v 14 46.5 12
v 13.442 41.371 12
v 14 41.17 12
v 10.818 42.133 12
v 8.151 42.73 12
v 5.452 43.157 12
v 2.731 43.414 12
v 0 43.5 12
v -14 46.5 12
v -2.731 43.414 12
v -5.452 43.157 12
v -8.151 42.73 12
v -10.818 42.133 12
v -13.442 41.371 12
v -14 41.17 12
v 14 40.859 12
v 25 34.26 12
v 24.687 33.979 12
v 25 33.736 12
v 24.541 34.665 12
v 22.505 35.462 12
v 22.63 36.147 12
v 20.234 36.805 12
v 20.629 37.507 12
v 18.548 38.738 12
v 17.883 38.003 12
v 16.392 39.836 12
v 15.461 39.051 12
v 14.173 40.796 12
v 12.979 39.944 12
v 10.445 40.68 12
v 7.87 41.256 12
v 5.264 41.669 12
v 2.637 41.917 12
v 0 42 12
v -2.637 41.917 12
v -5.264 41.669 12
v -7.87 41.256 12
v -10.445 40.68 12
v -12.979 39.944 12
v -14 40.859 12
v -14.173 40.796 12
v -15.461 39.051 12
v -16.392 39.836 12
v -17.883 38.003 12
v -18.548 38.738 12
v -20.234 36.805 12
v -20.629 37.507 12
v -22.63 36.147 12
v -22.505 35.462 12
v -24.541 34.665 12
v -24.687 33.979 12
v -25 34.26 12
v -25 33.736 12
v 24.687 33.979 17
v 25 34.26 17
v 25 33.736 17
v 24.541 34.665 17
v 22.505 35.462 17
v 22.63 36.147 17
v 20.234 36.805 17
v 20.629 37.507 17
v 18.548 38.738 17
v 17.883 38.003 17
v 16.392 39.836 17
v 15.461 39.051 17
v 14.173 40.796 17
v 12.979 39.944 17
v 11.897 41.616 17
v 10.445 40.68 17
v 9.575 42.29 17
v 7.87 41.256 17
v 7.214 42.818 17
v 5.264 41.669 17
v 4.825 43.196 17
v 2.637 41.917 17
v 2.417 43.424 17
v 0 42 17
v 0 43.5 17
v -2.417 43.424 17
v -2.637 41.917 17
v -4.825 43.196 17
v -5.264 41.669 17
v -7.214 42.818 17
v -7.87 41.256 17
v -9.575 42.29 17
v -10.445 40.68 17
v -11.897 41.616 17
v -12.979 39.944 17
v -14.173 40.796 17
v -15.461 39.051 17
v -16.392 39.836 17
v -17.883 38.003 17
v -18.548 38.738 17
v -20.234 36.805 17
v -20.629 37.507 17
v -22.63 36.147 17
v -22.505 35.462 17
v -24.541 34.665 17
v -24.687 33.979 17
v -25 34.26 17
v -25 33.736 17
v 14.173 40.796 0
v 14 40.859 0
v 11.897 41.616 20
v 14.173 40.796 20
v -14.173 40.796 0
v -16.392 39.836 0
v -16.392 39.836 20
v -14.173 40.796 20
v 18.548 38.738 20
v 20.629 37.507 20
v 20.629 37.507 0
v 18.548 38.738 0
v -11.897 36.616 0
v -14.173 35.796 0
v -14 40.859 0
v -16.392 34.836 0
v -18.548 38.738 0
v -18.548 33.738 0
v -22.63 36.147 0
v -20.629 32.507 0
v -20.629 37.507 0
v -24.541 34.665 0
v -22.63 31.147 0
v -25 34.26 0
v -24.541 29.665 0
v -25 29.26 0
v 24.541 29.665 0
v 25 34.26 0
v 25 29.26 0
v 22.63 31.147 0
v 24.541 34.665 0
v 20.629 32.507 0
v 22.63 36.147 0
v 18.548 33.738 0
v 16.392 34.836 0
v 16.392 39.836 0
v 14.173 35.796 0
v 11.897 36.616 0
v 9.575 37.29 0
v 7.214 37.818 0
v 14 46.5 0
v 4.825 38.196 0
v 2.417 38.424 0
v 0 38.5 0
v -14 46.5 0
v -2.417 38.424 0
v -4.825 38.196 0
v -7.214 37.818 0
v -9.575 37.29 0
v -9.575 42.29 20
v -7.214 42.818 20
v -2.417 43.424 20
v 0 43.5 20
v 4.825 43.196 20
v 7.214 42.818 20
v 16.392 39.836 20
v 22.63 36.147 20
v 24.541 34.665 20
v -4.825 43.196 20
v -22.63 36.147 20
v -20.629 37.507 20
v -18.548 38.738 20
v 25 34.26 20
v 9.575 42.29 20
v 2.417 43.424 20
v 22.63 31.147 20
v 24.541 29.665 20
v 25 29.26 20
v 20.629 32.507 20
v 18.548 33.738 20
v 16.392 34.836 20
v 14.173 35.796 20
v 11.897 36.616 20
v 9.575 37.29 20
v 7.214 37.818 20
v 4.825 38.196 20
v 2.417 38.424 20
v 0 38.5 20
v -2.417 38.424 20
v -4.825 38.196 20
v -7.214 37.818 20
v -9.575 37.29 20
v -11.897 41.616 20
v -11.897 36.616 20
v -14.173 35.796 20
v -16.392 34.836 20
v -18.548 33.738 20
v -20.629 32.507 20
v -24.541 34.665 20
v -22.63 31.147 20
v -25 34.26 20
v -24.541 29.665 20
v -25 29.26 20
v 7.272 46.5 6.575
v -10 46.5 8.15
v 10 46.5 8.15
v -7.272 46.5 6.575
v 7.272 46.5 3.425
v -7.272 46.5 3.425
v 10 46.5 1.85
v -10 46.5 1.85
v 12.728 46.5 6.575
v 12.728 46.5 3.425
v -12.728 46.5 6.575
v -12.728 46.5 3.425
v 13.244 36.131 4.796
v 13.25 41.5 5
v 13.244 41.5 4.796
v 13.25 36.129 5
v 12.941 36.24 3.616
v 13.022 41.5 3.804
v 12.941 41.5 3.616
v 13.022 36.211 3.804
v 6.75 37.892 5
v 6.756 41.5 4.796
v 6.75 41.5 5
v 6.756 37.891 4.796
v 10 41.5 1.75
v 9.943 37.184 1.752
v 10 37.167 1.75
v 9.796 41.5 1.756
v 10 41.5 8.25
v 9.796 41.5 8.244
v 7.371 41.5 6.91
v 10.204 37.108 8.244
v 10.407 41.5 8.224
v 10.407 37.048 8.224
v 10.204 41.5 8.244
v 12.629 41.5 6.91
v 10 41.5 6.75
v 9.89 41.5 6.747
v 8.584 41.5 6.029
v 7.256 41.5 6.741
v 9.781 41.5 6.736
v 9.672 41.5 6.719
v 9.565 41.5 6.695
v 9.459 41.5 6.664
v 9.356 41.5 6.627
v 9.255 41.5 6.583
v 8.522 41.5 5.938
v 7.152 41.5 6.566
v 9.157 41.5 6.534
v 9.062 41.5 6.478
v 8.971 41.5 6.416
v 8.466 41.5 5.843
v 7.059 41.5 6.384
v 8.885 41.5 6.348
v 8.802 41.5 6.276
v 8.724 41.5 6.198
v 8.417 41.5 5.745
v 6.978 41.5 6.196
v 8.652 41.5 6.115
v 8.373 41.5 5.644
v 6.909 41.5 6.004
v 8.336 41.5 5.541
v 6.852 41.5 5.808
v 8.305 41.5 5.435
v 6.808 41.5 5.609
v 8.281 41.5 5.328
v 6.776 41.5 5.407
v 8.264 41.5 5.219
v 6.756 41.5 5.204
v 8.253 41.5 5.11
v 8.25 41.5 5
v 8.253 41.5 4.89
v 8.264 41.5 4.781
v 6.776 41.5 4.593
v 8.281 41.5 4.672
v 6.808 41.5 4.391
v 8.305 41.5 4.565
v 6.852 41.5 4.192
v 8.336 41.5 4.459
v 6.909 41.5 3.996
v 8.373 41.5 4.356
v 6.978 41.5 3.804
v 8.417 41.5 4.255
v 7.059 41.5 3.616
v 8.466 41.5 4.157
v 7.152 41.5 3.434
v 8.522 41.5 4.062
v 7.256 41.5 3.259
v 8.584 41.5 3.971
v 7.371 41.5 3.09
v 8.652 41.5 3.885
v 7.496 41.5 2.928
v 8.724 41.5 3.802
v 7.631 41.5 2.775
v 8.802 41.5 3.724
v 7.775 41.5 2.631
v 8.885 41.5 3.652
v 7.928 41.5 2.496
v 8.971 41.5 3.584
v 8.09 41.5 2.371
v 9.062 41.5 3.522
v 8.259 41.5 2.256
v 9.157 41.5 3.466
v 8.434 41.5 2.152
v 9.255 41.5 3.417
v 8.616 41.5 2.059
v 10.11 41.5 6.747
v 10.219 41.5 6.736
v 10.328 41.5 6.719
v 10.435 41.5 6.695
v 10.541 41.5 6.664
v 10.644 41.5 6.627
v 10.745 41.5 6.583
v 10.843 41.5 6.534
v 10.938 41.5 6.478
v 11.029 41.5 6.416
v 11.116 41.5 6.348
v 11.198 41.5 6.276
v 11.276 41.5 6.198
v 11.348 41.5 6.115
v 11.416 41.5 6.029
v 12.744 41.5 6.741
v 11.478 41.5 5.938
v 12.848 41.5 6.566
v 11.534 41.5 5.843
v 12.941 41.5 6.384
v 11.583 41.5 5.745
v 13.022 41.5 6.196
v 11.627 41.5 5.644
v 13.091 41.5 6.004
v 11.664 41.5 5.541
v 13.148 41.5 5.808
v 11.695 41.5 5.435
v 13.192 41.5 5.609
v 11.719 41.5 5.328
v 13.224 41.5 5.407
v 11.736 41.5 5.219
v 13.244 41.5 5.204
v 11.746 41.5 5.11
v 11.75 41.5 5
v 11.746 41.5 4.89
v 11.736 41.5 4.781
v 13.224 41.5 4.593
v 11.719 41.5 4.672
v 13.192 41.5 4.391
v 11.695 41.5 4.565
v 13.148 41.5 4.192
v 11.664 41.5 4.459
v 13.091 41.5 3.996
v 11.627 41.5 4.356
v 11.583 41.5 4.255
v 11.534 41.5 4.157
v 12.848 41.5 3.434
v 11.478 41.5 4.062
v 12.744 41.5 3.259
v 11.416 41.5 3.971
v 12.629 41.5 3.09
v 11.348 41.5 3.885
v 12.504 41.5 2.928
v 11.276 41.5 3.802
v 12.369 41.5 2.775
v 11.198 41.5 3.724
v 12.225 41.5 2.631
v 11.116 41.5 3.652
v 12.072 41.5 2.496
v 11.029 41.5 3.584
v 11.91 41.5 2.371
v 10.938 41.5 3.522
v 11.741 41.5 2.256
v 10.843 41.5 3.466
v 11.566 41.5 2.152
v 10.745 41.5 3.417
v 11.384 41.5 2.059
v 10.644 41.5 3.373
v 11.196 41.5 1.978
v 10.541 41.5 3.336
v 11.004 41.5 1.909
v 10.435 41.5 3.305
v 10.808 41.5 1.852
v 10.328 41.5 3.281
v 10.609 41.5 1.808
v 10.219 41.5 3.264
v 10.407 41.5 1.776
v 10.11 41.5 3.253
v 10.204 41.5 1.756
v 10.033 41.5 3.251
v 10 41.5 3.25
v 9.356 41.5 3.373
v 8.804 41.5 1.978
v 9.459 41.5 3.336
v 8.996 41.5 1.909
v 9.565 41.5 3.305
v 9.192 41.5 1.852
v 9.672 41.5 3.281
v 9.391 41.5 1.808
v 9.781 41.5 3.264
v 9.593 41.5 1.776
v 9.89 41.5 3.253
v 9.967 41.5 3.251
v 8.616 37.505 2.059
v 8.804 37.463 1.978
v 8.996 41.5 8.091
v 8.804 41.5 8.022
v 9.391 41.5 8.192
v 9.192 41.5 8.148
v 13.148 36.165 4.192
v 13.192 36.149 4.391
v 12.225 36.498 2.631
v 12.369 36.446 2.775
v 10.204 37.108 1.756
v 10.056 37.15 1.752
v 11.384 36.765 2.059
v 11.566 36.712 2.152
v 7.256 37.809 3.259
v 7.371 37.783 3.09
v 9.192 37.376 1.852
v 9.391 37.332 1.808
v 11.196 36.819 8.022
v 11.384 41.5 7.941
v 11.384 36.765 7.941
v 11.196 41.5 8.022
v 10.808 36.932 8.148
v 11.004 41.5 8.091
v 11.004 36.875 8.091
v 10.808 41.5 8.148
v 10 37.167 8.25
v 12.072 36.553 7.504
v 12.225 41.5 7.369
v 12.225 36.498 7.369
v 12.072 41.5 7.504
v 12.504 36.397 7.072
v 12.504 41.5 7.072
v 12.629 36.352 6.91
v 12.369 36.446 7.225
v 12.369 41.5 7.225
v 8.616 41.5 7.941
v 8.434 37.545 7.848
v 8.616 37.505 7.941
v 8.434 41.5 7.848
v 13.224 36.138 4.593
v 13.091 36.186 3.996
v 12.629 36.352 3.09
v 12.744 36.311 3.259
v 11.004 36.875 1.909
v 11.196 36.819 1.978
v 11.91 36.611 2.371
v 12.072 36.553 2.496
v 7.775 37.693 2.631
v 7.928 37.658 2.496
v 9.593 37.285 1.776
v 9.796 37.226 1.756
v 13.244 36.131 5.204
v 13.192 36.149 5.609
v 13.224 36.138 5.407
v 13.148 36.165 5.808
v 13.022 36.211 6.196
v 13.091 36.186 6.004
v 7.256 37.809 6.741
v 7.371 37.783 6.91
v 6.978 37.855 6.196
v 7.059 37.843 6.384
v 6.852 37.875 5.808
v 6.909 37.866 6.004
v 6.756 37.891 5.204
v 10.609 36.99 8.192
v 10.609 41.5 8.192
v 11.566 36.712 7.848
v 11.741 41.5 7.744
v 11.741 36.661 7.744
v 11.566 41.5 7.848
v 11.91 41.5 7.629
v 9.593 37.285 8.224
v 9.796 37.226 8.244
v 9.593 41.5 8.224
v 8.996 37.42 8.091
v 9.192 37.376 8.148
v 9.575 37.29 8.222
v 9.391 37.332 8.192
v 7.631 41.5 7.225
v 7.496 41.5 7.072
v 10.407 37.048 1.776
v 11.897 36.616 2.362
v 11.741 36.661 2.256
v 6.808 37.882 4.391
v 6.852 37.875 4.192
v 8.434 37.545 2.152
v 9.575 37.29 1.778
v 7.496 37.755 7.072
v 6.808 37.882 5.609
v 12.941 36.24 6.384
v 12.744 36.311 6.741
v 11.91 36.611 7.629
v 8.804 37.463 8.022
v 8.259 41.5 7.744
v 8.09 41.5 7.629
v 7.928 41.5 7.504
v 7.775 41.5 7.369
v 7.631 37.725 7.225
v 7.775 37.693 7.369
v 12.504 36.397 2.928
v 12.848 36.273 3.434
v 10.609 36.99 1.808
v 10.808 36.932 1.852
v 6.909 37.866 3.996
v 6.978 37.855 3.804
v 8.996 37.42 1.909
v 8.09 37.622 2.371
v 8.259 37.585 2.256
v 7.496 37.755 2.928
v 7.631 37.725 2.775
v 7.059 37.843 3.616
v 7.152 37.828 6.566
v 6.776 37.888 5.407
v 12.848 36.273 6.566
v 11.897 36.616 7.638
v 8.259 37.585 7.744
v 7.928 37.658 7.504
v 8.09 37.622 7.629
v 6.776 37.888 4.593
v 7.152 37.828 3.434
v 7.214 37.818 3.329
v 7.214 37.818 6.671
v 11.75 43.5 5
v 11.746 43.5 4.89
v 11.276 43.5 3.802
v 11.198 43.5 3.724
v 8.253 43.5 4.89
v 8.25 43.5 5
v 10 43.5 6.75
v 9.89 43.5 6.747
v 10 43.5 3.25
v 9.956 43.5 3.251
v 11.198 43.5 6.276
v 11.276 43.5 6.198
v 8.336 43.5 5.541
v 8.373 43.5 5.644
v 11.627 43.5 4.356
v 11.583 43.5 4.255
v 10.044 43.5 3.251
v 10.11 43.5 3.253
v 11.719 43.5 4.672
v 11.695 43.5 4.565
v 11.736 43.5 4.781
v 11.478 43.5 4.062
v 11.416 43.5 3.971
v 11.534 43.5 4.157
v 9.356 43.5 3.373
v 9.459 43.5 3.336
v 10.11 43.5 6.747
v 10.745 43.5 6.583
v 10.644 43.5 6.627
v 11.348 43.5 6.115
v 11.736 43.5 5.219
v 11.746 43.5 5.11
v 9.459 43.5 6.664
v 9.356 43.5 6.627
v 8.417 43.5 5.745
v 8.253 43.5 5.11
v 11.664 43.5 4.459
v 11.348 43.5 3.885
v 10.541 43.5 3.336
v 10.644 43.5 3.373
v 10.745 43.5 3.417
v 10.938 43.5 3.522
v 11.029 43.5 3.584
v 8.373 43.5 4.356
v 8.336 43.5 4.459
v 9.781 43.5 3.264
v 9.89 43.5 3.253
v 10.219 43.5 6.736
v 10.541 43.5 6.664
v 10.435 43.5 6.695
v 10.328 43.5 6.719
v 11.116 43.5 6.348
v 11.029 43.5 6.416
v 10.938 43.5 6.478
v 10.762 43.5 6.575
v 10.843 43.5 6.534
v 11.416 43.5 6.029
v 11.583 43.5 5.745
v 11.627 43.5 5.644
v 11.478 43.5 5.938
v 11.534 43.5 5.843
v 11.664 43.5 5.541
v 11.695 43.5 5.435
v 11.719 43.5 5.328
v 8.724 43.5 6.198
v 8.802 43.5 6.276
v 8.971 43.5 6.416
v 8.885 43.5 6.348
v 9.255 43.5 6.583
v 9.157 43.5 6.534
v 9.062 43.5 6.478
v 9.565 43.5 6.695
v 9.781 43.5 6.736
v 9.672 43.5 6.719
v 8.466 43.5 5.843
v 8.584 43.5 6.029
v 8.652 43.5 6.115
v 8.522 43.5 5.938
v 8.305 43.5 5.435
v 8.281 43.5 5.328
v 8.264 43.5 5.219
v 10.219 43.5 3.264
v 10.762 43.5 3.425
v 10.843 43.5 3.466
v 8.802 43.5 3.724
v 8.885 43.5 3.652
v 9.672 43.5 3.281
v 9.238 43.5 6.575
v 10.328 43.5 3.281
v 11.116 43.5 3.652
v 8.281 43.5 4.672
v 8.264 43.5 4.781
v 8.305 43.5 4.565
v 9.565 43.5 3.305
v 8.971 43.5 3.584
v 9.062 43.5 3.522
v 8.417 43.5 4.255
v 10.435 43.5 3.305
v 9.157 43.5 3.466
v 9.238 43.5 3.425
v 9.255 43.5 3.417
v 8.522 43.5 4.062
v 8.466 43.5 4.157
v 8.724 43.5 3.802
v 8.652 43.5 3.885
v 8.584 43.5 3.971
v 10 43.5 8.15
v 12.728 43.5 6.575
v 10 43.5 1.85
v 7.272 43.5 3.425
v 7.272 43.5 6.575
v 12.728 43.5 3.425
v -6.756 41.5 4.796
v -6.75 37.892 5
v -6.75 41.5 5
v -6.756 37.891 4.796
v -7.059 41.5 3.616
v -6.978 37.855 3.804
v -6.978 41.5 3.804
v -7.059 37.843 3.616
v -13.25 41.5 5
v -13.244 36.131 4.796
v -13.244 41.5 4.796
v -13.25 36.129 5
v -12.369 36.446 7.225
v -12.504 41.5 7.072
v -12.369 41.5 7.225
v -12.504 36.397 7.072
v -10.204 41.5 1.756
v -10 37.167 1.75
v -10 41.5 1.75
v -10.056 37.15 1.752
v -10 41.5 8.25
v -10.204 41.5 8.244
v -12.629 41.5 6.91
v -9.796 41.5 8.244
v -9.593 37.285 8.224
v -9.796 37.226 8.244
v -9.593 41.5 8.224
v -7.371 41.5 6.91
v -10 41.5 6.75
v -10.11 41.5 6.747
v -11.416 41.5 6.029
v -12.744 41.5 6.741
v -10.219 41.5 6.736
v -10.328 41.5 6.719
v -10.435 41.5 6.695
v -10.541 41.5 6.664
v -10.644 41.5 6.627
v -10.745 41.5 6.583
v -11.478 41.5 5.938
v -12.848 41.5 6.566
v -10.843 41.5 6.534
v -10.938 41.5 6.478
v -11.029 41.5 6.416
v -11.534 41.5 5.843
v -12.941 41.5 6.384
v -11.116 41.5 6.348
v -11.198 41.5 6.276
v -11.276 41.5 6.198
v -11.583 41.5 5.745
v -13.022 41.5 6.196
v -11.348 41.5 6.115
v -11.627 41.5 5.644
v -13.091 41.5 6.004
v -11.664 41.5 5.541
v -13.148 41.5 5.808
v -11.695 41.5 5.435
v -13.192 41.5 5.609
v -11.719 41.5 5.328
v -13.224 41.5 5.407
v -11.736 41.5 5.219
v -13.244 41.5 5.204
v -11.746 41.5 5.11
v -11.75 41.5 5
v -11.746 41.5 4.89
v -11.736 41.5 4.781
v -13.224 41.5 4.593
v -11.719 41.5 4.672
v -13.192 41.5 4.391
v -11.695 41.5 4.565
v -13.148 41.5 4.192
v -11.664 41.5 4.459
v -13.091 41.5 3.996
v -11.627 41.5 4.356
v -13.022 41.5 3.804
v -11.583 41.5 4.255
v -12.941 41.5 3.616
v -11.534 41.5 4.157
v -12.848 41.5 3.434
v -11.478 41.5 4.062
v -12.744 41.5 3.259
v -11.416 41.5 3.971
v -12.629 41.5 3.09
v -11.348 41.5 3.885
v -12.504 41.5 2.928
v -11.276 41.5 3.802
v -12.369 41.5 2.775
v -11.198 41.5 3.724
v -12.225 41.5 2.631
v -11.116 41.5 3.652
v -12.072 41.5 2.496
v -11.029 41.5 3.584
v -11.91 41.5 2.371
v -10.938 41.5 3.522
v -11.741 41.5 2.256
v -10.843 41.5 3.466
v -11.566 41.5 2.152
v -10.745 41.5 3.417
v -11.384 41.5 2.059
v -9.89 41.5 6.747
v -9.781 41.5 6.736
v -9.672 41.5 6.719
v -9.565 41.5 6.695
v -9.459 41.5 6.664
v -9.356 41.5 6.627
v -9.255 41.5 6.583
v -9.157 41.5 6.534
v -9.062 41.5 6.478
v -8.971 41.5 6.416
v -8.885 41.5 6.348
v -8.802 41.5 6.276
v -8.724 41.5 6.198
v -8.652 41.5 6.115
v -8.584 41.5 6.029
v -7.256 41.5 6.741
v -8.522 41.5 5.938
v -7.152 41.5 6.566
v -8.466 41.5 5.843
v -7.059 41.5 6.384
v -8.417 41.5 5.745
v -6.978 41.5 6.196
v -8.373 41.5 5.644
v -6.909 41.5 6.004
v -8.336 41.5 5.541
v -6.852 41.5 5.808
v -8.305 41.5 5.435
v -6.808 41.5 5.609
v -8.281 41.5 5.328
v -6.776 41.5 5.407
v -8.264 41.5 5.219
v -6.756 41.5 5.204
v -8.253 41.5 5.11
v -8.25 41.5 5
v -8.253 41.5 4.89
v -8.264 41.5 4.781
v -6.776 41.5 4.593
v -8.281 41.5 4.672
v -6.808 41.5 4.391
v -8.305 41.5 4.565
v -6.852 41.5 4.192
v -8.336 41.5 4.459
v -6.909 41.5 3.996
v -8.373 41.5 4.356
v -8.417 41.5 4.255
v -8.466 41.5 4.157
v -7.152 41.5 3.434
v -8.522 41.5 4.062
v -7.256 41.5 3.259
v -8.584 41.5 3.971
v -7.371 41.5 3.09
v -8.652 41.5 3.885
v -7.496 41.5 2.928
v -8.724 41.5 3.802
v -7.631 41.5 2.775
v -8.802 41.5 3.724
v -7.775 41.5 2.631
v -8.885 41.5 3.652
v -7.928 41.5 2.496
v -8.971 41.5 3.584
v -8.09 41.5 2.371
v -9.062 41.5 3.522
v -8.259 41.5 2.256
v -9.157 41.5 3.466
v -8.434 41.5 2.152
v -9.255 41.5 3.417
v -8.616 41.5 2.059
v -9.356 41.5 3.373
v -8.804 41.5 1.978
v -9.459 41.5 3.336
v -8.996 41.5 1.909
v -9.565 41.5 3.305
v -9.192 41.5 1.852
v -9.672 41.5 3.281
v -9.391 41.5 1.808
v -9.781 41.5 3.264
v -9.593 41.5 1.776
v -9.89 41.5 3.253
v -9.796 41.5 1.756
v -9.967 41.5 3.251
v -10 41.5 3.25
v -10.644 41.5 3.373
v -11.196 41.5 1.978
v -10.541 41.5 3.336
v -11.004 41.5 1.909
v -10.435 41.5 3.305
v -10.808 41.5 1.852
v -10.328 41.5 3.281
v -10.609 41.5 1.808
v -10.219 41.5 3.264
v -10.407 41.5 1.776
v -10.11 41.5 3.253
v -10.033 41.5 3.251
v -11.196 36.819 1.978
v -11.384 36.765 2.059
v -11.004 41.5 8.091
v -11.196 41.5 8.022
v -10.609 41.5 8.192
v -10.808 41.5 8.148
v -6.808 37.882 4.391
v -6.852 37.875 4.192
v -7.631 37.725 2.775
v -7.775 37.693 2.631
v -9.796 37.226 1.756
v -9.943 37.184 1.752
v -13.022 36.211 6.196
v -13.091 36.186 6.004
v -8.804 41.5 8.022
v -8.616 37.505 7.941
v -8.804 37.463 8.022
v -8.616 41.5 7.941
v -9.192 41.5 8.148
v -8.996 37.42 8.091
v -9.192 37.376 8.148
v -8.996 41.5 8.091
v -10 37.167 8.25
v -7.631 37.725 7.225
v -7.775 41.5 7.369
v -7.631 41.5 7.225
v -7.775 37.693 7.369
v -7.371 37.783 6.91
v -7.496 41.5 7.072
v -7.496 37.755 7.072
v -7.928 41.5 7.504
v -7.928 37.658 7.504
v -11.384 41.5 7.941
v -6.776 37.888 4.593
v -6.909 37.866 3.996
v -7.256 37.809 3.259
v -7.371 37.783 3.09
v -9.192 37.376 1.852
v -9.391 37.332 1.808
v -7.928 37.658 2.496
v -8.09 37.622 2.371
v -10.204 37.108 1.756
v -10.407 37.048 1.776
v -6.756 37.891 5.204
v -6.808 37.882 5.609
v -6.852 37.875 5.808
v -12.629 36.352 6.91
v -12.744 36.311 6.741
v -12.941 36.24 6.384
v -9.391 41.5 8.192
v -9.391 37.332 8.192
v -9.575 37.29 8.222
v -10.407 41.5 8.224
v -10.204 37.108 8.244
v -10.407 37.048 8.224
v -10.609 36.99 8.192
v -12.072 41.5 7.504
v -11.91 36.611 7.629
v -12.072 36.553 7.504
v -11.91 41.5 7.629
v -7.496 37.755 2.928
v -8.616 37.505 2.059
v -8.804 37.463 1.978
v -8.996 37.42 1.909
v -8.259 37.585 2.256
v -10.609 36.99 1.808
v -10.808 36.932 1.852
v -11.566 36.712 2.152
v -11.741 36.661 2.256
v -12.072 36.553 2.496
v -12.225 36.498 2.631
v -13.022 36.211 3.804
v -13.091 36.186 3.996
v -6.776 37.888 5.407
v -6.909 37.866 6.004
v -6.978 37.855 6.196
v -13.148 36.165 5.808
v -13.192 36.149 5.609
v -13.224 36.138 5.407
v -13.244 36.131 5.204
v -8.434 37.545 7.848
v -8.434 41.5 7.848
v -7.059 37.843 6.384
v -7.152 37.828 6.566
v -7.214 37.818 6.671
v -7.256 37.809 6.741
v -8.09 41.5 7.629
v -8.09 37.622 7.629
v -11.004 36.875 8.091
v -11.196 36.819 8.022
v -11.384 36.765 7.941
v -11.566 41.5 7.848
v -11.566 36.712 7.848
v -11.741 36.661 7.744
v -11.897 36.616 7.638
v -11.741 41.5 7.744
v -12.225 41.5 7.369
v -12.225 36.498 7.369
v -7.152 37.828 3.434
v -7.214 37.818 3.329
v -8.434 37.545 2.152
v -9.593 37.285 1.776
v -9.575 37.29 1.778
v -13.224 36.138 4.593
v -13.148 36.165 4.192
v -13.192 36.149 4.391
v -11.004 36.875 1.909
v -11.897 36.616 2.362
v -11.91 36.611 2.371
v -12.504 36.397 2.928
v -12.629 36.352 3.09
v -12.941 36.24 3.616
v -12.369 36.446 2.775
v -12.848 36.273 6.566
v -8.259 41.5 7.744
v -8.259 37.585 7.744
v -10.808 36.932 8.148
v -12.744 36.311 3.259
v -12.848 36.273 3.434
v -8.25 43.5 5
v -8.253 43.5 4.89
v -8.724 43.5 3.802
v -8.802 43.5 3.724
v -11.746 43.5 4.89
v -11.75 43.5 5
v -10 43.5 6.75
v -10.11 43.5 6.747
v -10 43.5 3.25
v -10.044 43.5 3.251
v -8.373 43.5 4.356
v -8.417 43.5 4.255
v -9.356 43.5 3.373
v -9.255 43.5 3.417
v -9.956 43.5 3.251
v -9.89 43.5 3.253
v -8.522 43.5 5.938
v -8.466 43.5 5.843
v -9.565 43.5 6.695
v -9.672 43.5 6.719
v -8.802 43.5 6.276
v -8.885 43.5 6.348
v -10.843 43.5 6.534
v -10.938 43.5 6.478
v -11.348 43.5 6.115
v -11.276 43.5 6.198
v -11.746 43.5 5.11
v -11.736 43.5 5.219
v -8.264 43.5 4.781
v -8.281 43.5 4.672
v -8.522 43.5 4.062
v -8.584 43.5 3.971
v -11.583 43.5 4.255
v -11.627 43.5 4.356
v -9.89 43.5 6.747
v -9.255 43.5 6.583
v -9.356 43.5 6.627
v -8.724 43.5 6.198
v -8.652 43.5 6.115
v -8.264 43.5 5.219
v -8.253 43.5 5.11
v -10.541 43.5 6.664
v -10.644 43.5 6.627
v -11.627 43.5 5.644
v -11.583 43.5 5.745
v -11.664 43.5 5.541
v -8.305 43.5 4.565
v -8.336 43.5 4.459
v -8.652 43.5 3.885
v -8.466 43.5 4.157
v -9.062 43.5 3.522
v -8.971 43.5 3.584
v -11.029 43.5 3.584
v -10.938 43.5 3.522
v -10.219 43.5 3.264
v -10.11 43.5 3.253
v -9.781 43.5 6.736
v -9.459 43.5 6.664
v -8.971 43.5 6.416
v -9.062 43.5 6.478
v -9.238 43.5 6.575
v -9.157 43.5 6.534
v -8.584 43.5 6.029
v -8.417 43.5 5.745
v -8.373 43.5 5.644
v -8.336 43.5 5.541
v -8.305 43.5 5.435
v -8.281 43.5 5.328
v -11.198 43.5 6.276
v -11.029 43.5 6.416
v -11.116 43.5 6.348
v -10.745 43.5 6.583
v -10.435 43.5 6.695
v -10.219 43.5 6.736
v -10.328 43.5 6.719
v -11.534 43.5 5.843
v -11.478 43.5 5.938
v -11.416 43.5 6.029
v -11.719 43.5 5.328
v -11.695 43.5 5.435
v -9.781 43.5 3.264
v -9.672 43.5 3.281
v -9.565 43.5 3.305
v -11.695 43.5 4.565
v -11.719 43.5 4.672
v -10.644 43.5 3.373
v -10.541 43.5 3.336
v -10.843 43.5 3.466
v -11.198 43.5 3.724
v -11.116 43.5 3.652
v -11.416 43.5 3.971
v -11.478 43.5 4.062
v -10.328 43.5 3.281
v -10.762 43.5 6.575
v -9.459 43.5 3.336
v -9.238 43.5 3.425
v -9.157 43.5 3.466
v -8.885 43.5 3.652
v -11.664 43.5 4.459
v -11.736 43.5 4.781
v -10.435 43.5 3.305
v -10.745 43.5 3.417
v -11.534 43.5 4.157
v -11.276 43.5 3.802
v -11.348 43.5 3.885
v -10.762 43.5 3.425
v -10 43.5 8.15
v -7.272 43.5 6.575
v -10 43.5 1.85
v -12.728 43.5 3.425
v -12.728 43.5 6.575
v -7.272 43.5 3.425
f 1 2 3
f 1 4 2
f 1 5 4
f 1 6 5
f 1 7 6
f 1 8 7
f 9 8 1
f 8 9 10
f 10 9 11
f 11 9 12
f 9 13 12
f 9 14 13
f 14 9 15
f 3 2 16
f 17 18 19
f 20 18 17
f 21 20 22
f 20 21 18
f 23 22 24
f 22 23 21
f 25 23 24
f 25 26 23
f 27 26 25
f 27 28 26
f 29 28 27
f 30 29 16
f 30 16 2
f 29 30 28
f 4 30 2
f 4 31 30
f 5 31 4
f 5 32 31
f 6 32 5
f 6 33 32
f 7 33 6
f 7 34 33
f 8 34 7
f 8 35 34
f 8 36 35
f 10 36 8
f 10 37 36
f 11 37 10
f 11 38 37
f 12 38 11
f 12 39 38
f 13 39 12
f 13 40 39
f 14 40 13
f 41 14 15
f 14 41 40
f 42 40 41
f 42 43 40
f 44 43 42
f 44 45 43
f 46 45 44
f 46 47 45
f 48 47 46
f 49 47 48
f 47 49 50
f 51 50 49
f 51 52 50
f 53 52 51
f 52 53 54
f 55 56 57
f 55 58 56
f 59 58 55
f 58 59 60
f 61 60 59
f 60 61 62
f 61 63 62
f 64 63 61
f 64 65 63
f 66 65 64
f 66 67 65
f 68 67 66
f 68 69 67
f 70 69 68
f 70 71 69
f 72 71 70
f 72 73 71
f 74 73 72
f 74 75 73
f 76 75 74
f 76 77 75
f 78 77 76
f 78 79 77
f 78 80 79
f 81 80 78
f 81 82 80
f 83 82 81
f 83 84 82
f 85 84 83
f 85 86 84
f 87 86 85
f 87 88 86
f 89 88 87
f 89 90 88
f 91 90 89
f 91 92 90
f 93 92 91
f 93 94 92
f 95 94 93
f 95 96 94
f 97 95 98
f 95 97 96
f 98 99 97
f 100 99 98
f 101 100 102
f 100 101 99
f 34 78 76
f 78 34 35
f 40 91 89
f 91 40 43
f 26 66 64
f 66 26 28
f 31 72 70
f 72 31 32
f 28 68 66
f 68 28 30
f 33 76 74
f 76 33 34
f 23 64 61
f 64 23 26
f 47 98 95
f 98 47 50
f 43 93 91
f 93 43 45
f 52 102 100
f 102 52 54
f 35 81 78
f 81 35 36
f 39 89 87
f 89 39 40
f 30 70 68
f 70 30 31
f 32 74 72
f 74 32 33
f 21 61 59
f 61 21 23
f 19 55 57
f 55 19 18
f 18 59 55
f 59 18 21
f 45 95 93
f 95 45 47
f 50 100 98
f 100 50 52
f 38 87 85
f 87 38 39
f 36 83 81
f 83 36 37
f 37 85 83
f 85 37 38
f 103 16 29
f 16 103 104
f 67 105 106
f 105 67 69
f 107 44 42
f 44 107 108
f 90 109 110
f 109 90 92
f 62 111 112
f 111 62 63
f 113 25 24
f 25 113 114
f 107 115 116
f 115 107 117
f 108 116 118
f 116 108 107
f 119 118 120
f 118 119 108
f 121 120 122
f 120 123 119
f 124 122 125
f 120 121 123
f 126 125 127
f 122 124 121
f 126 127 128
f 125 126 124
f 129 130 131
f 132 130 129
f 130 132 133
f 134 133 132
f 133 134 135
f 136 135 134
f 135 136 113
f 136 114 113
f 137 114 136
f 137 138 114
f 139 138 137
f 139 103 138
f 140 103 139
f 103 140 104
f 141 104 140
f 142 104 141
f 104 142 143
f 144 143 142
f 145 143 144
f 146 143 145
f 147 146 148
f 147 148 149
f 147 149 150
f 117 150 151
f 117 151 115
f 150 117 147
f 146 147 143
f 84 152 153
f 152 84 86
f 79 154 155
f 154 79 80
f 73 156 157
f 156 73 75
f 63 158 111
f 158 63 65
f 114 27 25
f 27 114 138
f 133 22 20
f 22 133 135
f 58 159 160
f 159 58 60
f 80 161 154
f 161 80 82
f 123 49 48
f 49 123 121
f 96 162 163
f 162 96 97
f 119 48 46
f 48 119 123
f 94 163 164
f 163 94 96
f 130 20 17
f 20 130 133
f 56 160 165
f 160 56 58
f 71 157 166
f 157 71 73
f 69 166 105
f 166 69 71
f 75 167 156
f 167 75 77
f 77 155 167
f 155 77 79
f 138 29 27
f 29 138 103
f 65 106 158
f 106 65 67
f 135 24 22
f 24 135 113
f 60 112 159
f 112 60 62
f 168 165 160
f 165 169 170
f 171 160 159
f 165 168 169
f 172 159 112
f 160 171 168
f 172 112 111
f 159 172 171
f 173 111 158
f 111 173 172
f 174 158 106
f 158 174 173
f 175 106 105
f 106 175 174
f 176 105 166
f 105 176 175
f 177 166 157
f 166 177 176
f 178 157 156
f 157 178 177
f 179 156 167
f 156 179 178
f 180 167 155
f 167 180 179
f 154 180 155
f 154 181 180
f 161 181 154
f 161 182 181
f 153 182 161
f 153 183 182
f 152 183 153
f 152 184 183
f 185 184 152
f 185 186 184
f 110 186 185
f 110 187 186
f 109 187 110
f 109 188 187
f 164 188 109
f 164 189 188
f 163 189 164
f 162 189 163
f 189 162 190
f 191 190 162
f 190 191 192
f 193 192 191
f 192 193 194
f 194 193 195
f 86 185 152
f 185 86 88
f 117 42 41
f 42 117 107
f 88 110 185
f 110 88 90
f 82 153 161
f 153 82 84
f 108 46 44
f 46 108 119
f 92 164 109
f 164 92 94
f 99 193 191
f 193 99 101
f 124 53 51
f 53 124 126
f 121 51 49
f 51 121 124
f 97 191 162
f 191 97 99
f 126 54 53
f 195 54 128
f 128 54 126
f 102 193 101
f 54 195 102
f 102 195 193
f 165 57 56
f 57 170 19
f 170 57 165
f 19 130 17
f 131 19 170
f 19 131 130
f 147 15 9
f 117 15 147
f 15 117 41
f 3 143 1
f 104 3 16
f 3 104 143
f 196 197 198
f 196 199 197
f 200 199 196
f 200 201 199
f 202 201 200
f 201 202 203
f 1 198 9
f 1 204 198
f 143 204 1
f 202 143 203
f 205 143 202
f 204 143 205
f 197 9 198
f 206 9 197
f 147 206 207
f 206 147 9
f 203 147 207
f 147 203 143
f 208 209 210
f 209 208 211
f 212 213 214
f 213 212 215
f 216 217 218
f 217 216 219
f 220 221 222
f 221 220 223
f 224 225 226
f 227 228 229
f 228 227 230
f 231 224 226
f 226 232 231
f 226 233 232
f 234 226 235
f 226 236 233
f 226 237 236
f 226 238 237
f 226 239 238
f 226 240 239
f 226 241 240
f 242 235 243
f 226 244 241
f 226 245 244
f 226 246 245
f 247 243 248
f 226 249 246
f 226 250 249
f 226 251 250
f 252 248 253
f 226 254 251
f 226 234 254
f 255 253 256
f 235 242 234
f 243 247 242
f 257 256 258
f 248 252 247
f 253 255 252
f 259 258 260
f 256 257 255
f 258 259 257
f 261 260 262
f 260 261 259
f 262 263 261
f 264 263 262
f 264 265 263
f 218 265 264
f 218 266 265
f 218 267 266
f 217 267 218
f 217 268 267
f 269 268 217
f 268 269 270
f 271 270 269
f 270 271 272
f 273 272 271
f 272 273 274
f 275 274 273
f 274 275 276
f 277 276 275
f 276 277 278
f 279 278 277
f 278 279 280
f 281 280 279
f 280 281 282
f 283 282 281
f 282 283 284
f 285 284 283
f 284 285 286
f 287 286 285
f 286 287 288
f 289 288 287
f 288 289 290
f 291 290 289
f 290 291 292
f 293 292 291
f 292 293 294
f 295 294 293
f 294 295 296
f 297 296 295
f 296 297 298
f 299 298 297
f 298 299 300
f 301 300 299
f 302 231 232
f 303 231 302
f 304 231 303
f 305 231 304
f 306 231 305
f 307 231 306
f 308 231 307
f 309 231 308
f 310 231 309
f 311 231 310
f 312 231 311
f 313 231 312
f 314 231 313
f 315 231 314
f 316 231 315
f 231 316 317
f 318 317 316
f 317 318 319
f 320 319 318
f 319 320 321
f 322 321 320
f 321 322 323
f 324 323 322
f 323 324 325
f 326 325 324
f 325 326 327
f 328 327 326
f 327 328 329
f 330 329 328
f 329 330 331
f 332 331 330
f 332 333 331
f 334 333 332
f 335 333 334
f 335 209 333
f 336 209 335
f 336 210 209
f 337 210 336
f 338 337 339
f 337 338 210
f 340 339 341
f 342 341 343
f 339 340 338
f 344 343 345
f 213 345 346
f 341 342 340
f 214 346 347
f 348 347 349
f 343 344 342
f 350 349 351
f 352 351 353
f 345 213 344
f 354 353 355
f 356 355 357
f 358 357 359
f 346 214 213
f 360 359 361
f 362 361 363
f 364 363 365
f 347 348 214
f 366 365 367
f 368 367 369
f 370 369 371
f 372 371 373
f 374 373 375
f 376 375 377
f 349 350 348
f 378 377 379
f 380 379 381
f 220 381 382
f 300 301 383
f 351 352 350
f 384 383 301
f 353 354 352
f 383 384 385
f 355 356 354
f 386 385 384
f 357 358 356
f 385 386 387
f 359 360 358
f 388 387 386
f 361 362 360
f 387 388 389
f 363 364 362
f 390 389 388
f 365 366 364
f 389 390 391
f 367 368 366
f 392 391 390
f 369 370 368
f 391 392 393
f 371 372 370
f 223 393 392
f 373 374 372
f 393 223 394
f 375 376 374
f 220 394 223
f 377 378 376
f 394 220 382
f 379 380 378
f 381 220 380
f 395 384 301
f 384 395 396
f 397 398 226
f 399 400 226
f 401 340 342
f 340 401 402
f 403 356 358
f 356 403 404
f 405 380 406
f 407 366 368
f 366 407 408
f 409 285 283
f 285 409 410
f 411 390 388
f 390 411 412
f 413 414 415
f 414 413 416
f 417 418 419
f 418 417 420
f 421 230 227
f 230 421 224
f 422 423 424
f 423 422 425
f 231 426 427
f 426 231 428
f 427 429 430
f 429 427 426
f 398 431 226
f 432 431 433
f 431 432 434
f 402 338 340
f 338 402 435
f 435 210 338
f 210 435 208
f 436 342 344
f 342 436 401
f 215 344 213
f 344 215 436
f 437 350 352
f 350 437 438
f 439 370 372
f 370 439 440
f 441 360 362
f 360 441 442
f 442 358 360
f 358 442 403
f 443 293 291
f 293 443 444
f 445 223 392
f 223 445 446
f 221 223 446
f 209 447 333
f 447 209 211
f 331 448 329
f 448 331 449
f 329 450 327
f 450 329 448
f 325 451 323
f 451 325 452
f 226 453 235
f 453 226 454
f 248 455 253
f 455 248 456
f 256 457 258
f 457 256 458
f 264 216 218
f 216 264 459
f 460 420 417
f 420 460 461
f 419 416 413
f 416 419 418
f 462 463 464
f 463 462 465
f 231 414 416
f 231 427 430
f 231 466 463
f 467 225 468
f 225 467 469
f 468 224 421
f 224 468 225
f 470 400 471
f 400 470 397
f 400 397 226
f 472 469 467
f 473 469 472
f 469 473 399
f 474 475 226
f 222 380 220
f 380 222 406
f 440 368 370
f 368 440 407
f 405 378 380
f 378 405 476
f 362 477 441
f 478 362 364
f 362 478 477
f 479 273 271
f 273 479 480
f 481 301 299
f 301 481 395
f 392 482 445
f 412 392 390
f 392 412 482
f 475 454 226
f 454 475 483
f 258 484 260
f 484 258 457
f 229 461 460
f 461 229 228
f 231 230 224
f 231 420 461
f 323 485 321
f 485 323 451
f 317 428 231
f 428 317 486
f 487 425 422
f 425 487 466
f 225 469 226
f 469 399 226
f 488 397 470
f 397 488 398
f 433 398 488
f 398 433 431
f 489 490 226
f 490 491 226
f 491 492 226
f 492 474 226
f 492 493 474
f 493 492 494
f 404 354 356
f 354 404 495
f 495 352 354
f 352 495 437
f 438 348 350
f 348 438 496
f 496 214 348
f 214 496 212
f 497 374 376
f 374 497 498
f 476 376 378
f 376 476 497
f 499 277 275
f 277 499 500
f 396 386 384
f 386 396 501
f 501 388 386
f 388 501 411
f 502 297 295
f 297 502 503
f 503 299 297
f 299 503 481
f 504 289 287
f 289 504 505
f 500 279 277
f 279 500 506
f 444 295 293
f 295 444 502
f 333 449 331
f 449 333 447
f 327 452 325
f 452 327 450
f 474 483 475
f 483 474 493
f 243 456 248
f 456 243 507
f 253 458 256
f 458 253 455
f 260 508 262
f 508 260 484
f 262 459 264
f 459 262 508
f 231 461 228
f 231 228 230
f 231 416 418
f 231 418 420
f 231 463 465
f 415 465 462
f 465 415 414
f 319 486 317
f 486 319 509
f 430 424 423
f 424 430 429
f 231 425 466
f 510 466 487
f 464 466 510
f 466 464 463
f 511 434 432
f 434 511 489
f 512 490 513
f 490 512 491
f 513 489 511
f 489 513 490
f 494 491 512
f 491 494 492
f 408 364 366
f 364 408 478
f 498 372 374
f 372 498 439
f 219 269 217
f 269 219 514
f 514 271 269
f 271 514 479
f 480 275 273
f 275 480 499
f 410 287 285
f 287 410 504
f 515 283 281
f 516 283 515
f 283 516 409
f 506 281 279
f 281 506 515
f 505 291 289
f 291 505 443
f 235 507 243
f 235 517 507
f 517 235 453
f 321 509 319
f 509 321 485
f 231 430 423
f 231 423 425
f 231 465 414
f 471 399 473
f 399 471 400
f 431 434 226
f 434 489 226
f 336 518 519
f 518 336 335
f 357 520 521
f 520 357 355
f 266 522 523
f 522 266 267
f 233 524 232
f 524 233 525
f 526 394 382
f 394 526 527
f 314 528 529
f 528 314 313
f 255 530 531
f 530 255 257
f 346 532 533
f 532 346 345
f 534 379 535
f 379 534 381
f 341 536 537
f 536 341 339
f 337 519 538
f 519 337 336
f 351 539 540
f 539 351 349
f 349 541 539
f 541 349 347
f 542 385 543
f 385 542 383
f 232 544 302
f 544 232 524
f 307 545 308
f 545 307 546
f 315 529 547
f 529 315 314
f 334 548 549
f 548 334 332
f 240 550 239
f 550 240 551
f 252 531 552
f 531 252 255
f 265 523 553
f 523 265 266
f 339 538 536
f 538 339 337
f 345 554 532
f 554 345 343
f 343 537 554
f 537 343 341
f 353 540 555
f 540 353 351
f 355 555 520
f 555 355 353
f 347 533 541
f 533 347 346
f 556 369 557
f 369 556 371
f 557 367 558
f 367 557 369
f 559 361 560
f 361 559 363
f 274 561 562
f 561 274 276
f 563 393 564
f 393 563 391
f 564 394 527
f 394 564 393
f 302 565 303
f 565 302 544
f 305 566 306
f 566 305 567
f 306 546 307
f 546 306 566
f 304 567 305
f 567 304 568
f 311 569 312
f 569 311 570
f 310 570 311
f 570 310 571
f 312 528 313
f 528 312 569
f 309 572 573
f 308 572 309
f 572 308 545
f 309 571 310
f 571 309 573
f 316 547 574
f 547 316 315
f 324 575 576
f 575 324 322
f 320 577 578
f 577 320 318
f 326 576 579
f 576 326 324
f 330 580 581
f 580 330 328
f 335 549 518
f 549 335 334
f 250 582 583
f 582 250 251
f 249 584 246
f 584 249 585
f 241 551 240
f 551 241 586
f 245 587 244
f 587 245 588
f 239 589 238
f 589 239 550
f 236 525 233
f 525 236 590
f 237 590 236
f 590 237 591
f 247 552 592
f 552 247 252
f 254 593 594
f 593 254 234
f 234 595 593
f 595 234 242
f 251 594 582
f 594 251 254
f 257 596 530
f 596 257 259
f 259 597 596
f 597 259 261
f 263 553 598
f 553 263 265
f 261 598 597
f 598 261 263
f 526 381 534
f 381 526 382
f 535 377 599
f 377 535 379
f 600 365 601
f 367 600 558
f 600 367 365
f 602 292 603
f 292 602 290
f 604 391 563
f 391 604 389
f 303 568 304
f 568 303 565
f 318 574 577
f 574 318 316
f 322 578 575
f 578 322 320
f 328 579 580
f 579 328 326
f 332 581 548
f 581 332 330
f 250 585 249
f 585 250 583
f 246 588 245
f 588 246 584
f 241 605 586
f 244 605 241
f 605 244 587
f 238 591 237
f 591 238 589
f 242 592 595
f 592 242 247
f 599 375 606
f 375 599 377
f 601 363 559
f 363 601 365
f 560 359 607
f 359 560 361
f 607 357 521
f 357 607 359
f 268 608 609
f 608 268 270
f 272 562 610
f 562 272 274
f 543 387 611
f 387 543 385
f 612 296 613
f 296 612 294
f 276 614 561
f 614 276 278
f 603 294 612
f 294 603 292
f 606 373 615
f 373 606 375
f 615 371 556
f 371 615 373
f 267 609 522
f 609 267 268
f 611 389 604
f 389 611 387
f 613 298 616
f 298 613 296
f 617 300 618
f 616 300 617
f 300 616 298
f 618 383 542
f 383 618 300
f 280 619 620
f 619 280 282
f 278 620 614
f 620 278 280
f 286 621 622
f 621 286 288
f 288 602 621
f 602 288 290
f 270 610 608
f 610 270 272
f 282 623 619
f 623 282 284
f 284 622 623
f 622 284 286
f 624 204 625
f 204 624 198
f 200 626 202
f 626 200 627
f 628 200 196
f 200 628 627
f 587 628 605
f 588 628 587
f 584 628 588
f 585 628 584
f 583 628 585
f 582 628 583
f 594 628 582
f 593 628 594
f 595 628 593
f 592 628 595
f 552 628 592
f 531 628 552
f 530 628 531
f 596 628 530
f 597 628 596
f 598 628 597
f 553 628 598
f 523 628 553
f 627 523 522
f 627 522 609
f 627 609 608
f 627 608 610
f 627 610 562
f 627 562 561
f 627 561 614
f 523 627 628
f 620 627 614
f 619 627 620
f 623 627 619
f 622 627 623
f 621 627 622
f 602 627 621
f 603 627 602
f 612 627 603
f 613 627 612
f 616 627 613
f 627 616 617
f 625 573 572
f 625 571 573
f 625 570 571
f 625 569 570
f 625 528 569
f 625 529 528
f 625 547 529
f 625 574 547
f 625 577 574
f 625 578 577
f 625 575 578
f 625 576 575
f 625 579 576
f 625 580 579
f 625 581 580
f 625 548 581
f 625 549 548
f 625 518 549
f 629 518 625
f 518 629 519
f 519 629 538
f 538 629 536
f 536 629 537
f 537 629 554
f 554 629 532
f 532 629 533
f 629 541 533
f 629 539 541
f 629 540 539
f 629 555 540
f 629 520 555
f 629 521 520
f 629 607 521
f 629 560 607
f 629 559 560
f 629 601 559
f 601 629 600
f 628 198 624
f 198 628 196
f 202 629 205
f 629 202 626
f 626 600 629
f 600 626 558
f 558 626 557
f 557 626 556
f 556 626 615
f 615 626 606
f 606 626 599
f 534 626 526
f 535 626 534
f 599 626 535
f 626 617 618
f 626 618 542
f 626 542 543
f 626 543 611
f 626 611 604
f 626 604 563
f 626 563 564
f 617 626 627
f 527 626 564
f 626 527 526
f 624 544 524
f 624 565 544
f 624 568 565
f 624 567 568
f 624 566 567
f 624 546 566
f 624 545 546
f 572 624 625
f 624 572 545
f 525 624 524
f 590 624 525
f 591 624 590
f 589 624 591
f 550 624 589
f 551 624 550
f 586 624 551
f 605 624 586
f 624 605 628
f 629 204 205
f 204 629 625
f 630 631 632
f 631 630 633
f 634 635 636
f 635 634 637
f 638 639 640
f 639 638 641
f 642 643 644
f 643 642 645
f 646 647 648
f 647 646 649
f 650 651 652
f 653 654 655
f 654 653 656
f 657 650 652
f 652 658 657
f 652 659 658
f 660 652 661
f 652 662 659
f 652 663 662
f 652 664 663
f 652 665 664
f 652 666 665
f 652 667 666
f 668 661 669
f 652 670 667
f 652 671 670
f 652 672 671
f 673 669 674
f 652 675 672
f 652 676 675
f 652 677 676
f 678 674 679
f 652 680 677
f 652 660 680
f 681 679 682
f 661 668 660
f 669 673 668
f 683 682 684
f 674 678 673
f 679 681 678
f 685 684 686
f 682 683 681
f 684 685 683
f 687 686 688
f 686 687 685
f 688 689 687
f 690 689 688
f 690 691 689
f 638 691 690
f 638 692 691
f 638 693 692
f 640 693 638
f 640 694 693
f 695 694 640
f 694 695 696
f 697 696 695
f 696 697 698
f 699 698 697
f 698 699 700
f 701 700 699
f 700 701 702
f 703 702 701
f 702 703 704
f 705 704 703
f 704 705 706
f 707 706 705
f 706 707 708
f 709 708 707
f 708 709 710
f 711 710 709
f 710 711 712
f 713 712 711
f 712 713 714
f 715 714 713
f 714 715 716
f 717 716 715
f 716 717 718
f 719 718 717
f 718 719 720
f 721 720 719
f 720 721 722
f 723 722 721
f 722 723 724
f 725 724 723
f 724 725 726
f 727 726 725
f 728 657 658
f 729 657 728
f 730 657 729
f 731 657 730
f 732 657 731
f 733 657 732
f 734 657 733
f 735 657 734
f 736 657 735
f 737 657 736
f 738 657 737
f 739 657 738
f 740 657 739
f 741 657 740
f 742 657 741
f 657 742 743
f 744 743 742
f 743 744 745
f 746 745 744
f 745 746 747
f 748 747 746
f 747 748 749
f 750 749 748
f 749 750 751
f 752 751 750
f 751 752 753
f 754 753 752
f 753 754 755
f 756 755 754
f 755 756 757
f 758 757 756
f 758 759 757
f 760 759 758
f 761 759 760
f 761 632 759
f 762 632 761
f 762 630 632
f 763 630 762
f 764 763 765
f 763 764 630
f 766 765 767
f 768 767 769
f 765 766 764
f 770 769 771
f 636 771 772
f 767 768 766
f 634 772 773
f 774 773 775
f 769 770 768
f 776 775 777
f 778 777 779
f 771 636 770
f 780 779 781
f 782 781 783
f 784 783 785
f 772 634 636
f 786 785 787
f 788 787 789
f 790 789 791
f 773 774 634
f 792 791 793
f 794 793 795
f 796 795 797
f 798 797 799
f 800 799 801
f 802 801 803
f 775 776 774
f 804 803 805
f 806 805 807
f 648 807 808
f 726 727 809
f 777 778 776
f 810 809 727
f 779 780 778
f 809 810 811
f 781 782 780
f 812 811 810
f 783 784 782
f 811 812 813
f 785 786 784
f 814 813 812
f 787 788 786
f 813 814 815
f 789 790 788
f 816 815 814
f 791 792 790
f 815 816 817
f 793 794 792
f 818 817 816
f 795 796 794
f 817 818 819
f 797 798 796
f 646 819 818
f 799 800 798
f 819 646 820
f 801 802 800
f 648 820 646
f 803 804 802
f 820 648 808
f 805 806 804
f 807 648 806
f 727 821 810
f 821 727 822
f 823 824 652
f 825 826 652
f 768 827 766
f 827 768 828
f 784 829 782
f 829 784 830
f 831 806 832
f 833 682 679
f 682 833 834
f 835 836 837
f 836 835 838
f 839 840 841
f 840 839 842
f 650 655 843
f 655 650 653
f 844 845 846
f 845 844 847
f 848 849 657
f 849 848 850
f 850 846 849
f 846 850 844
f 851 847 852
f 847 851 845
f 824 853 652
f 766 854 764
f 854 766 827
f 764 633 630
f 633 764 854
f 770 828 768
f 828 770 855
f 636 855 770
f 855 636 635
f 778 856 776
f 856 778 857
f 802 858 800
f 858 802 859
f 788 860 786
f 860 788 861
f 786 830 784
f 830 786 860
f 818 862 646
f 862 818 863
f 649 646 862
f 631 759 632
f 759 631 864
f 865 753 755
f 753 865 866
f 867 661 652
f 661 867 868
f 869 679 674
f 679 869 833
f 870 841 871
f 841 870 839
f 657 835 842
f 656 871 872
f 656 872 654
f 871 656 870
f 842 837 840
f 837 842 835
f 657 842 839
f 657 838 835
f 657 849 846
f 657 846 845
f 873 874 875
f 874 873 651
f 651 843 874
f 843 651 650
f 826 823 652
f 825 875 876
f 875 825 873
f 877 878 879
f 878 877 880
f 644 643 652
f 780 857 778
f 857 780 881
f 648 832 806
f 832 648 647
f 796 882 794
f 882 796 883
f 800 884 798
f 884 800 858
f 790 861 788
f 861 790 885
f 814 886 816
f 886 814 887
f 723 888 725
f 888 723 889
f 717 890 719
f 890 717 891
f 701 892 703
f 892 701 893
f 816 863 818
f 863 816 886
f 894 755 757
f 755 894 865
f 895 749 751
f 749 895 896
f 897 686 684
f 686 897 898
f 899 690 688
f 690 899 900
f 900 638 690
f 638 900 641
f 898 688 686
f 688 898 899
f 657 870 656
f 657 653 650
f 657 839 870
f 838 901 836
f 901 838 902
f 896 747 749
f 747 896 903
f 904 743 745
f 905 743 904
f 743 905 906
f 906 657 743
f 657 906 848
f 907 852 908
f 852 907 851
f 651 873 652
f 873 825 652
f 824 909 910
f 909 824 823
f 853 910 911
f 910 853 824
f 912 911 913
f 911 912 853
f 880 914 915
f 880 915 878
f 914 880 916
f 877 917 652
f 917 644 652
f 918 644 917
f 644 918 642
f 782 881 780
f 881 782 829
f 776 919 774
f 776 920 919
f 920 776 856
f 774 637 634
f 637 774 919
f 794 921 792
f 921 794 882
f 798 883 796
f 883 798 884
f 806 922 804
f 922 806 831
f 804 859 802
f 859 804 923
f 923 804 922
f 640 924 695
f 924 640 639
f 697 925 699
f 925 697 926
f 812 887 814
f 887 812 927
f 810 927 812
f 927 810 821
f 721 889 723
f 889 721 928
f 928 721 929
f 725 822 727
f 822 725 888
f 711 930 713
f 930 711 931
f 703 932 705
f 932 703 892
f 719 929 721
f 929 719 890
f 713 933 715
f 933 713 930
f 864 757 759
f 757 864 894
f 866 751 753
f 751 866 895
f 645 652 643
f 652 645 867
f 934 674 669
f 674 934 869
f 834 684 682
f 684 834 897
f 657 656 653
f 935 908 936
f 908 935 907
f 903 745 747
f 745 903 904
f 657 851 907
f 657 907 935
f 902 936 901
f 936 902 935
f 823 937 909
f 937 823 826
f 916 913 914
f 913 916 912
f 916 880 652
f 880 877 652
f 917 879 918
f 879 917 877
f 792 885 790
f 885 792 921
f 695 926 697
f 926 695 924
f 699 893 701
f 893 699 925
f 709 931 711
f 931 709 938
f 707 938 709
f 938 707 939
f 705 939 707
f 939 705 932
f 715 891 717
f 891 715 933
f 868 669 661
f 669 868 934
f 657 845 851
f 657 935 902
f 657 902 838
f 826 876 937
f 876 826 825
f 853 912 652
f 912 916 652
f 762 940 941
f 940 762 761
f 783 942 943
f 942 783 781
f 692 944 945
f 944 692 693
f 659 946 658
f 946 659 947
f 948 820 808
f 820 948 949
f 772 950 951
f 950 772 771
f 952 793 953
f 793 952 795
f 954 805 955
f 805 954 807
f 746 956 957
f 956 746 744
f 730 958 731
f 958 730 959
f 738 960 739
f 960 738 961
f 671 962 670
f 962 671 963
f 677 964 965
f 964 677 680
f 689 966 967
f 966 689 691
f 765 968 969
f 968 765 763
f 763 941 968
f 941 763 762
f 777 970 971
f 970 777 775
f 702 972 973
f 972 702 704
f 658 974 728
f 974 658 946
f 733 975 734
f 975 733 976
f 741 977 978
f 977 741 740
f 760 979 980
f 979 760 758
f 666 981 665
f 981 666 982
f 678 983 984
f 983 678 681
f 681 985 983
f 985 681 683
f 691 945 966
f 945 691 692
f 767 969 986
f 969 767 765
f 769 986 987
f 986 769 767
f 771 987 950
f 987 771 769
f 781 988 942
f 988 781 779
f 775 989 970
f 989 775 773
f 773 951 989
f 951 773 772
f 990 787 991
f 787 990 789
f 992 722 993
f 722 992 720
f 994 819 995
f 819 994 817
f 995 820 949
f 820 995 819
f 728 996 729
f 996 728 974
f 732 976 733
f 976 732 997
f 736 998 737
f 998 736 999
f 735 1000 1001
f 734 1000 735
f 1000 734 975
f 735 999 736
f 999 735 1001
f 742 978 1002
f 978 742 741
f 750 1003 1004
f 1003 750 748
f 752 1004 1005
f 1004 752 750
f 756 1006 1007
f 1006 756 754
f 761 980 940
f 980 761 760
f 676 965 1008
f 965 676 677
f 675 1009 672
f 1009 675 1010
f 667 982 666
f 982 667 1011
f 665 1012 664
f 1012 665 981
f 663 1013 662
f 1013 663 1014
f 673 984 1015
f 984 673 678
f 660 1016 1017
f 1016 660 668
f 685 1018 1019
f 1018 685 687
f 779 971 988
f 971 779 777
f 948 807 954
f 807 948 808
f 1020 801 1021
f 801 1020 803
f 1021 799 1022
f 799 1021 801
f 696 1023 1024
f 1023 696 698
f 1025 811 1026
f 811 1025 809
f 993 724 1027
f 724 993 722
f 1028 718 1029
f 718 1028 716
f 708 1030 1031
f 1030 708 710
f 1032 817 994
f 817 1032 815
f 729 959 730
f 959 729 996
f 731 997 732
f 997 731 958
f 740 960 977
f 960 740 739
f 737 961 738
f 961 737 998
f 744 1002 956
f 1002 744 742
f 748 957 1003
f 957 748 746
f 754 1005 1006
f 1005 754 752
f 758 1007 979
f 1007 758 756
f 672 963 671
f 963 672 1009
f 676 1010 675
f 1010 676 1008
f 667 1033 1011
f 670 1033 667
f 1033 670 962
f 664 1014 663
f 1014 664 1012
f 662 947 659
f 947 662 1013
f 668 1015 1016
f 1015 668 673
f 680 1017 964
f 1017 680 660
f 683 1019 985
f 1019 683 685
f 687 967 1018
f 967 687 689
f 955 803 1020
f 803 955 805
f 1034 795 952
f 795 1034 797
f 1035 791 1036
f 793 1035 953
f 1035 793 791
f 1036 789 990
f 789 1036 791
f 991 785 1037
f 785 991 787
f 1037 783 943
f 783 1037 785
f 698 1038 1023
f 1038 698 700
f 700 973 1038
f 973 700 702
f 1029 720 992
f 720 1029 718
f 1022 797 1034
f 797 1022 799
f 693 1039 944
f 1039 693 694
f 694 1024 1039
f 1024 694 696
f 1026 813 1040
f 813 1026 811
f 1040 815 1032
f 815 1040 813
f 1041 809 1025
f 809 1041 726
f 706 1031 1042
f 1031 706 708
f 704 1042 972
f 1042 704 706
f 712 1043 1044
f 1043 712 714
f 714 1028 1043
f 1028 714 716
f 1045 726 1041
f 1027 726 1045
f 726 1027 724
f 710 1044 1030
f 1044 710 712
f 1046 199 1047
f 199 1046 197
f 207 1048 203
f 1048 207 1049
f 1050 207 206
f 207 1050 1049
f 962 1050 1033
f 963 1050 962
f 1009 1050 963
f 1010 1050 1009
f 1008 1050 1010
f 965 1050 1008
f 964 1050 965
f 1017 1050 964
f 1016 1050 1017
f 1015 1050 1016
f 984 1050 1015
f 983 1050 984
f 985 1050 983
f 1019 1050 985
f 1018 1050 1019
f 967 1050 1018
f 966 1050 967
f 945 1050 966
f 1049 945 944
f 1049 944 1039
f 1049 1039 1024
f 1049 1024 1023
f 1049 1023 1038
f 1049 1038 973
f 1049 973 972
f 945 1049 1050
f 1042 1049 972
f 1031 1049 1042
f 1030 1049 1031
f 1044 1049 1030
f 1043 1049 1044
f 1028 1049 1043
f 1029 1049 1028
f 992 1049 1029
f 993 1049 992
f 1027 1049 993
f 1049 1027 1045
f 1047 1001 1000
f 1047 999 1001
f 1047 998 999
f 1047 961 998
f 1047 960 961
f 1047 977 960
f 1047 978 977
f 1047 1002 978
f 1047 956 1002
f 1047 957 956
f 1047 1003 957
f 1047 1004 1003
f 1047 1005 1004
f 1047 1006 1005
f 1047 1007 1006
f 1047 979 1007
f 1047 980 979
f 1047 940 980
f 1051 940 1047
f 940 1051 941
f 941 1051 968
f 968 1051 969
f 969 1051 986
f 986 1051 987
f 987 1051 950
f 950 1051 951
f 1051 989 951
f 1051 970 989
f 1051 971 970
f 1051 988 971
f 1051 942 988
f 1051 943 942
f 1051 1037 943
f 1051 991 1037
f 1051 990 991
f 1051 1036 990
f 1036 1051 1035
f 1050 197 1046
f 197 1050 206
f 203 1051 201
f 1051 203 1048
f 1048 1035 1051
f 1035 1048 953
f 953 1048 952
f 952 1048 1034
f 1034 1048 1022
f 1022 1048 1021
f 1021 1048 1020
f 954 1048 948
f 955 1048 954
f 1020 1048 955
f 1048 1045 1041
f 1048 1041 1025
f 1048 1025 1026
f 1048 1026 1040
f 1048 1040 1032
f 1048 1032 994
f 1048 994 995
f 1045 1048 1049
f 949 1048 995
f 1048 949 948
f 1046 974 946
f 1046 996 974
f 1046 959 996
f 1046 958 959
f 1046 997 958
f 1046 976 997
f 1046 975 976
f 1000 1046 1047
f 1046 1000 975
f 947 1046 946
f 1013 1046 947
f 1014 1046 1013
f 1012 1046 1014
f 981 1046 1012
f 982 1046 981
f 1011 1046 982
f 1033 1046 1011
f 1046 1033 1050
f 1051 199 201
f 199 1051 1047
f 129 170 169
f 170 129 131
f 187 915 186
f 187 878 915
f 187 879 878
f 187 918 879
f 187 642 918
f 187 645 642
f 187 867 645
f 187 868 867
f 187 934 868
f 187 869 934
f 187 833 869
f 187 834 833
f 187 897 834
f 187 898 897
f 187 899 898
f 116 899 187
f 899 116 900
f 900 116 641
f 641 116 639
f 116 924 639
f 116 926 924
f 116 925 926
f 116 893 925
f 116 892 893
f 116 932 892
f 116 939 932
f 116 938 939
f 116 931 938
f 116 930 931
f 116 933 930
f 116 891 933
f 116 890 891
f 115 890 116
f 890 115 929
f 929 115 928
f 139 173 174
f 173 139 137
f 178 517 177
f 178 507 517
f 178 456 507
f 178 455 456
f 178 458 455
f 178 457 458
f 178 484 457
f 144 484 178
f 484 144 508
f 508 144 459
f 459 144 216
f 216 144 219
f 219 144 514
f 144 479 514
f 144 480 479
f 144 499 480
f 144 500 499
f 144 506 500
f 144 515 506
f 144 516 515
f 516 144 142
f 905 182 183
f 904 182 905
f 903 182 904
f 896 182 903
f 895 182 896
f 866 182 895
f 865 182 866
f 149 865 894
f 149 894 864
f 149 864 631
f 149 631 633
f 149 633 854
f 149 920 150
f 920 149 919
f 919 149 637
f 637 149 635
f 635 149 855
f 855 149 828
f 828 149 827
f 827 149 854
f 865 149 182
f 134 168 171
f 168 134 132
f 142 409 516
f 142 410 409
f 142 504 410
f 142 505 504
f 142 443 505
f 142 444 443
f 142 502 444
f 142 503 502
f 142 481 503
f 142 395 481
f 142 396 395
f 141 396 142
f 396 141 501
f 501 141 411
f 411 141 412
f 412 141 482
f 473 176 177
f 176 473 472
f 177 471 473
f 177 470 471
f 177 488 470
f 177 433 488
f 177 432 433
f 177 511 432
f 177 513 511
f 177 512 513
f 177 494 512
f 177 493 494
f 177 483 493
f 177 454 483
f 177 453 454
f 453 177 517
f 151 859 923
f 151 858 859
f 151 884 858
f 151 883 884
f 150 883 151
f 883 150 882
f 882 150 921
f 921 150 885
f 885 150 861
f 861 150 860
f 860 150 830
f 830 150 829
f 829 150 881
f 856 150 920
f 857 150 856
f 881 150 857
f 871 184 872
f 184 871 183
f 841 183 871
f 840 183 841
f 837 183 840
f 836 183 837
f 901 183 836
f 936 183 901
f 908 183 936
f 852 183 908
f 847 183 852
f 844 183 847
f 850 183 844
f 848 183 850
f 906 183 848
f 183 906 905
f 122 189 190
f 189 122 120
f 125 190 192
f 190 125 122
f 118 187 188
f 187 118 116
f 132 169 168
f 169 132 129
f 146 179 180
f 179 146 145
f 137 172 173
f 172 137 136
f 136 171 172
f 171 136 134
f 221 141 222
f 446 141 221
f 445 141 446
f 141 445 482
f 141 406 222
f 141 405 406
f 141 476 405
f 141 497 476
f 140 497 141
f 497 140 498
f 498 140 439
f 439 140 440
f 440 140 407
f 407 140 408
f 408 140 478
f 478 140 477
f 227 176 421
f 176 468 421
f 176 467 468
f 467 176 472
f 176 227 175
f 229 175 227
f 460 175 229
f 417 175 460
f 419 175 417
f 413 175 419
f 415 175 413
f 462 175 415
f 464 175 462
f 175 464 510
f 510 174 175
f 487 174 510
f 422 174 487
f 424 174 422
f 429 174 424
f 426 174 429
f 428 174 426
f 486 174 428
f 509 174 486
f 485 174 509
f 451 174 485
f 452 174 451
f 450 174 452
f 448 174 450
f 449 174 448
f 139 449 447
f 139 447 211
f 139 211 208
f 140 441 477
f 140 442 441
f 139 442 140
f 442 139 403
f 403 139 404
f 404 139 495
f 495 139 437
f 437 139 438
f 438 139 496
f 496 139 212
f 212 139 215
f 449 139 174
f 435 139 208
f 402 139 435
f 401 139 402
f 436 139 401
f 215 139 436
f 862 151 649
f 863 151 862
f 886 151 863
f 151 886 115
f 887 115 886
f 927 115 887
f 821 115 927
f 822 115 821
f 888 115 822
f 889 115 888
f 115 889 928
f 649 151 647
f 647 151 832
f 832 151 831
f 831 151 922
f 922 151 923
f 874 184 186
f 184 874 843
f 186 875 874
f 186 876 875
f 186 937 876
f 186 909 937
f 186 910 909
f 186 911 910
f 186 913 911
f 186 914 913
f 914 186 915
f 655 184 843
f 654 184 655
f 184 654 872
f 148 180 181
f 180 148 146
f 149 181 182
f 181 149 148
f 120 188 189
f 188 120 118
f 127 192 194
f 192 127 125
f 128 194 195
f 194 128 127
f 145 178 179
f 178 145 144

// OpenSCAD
$fn=100;
montaz_d = 77;

module objimka(){
    
    difference(){
        union(){
            intersection(){
                translate([0,5,0]) cylinder(h=20, d = montaz_d);
                translate([-25, 0, 0]) cube([50, 100, 20]);
           }
           translate([-28/2, 0]) cube([28, montaz_d/2+5+3, 12]);
        }
        
        cylinder(h=21, d = montaz_d);
        
        translate([0,0,12]) difference(){
            cylinder(h=5, d = montaz_d+10);
            cylinder(h=5, d = montaz_d+7);
        }
        
        translate([20/2, montaz_d/2-3, 5]){
            rotate([-90, 00, 0]) cylinder(h=3+3, d=6.5);
            rotate([-90, 00, 0]) cylinder(h=20, d=3.5);
            rotate([-90, 90, 0]) translate([0, 0, 8]) cylinder(h=4, d=6.3, $fn=6);
        }
        translate([-20/2, montaz_d/2-3, 5]){
            rotate([-90, 00, 0]) cylinder(h=3+3, d=6.5);
            rotate([-90, 00, 0]) cylinder(h=20, d=3.5);
            rotate([-90, 90, 0]) translate([0, 0, 8]) cylinder(h=4, d=6.3, $fn=6);
        }
    }
    
    
    
}



objimka();
